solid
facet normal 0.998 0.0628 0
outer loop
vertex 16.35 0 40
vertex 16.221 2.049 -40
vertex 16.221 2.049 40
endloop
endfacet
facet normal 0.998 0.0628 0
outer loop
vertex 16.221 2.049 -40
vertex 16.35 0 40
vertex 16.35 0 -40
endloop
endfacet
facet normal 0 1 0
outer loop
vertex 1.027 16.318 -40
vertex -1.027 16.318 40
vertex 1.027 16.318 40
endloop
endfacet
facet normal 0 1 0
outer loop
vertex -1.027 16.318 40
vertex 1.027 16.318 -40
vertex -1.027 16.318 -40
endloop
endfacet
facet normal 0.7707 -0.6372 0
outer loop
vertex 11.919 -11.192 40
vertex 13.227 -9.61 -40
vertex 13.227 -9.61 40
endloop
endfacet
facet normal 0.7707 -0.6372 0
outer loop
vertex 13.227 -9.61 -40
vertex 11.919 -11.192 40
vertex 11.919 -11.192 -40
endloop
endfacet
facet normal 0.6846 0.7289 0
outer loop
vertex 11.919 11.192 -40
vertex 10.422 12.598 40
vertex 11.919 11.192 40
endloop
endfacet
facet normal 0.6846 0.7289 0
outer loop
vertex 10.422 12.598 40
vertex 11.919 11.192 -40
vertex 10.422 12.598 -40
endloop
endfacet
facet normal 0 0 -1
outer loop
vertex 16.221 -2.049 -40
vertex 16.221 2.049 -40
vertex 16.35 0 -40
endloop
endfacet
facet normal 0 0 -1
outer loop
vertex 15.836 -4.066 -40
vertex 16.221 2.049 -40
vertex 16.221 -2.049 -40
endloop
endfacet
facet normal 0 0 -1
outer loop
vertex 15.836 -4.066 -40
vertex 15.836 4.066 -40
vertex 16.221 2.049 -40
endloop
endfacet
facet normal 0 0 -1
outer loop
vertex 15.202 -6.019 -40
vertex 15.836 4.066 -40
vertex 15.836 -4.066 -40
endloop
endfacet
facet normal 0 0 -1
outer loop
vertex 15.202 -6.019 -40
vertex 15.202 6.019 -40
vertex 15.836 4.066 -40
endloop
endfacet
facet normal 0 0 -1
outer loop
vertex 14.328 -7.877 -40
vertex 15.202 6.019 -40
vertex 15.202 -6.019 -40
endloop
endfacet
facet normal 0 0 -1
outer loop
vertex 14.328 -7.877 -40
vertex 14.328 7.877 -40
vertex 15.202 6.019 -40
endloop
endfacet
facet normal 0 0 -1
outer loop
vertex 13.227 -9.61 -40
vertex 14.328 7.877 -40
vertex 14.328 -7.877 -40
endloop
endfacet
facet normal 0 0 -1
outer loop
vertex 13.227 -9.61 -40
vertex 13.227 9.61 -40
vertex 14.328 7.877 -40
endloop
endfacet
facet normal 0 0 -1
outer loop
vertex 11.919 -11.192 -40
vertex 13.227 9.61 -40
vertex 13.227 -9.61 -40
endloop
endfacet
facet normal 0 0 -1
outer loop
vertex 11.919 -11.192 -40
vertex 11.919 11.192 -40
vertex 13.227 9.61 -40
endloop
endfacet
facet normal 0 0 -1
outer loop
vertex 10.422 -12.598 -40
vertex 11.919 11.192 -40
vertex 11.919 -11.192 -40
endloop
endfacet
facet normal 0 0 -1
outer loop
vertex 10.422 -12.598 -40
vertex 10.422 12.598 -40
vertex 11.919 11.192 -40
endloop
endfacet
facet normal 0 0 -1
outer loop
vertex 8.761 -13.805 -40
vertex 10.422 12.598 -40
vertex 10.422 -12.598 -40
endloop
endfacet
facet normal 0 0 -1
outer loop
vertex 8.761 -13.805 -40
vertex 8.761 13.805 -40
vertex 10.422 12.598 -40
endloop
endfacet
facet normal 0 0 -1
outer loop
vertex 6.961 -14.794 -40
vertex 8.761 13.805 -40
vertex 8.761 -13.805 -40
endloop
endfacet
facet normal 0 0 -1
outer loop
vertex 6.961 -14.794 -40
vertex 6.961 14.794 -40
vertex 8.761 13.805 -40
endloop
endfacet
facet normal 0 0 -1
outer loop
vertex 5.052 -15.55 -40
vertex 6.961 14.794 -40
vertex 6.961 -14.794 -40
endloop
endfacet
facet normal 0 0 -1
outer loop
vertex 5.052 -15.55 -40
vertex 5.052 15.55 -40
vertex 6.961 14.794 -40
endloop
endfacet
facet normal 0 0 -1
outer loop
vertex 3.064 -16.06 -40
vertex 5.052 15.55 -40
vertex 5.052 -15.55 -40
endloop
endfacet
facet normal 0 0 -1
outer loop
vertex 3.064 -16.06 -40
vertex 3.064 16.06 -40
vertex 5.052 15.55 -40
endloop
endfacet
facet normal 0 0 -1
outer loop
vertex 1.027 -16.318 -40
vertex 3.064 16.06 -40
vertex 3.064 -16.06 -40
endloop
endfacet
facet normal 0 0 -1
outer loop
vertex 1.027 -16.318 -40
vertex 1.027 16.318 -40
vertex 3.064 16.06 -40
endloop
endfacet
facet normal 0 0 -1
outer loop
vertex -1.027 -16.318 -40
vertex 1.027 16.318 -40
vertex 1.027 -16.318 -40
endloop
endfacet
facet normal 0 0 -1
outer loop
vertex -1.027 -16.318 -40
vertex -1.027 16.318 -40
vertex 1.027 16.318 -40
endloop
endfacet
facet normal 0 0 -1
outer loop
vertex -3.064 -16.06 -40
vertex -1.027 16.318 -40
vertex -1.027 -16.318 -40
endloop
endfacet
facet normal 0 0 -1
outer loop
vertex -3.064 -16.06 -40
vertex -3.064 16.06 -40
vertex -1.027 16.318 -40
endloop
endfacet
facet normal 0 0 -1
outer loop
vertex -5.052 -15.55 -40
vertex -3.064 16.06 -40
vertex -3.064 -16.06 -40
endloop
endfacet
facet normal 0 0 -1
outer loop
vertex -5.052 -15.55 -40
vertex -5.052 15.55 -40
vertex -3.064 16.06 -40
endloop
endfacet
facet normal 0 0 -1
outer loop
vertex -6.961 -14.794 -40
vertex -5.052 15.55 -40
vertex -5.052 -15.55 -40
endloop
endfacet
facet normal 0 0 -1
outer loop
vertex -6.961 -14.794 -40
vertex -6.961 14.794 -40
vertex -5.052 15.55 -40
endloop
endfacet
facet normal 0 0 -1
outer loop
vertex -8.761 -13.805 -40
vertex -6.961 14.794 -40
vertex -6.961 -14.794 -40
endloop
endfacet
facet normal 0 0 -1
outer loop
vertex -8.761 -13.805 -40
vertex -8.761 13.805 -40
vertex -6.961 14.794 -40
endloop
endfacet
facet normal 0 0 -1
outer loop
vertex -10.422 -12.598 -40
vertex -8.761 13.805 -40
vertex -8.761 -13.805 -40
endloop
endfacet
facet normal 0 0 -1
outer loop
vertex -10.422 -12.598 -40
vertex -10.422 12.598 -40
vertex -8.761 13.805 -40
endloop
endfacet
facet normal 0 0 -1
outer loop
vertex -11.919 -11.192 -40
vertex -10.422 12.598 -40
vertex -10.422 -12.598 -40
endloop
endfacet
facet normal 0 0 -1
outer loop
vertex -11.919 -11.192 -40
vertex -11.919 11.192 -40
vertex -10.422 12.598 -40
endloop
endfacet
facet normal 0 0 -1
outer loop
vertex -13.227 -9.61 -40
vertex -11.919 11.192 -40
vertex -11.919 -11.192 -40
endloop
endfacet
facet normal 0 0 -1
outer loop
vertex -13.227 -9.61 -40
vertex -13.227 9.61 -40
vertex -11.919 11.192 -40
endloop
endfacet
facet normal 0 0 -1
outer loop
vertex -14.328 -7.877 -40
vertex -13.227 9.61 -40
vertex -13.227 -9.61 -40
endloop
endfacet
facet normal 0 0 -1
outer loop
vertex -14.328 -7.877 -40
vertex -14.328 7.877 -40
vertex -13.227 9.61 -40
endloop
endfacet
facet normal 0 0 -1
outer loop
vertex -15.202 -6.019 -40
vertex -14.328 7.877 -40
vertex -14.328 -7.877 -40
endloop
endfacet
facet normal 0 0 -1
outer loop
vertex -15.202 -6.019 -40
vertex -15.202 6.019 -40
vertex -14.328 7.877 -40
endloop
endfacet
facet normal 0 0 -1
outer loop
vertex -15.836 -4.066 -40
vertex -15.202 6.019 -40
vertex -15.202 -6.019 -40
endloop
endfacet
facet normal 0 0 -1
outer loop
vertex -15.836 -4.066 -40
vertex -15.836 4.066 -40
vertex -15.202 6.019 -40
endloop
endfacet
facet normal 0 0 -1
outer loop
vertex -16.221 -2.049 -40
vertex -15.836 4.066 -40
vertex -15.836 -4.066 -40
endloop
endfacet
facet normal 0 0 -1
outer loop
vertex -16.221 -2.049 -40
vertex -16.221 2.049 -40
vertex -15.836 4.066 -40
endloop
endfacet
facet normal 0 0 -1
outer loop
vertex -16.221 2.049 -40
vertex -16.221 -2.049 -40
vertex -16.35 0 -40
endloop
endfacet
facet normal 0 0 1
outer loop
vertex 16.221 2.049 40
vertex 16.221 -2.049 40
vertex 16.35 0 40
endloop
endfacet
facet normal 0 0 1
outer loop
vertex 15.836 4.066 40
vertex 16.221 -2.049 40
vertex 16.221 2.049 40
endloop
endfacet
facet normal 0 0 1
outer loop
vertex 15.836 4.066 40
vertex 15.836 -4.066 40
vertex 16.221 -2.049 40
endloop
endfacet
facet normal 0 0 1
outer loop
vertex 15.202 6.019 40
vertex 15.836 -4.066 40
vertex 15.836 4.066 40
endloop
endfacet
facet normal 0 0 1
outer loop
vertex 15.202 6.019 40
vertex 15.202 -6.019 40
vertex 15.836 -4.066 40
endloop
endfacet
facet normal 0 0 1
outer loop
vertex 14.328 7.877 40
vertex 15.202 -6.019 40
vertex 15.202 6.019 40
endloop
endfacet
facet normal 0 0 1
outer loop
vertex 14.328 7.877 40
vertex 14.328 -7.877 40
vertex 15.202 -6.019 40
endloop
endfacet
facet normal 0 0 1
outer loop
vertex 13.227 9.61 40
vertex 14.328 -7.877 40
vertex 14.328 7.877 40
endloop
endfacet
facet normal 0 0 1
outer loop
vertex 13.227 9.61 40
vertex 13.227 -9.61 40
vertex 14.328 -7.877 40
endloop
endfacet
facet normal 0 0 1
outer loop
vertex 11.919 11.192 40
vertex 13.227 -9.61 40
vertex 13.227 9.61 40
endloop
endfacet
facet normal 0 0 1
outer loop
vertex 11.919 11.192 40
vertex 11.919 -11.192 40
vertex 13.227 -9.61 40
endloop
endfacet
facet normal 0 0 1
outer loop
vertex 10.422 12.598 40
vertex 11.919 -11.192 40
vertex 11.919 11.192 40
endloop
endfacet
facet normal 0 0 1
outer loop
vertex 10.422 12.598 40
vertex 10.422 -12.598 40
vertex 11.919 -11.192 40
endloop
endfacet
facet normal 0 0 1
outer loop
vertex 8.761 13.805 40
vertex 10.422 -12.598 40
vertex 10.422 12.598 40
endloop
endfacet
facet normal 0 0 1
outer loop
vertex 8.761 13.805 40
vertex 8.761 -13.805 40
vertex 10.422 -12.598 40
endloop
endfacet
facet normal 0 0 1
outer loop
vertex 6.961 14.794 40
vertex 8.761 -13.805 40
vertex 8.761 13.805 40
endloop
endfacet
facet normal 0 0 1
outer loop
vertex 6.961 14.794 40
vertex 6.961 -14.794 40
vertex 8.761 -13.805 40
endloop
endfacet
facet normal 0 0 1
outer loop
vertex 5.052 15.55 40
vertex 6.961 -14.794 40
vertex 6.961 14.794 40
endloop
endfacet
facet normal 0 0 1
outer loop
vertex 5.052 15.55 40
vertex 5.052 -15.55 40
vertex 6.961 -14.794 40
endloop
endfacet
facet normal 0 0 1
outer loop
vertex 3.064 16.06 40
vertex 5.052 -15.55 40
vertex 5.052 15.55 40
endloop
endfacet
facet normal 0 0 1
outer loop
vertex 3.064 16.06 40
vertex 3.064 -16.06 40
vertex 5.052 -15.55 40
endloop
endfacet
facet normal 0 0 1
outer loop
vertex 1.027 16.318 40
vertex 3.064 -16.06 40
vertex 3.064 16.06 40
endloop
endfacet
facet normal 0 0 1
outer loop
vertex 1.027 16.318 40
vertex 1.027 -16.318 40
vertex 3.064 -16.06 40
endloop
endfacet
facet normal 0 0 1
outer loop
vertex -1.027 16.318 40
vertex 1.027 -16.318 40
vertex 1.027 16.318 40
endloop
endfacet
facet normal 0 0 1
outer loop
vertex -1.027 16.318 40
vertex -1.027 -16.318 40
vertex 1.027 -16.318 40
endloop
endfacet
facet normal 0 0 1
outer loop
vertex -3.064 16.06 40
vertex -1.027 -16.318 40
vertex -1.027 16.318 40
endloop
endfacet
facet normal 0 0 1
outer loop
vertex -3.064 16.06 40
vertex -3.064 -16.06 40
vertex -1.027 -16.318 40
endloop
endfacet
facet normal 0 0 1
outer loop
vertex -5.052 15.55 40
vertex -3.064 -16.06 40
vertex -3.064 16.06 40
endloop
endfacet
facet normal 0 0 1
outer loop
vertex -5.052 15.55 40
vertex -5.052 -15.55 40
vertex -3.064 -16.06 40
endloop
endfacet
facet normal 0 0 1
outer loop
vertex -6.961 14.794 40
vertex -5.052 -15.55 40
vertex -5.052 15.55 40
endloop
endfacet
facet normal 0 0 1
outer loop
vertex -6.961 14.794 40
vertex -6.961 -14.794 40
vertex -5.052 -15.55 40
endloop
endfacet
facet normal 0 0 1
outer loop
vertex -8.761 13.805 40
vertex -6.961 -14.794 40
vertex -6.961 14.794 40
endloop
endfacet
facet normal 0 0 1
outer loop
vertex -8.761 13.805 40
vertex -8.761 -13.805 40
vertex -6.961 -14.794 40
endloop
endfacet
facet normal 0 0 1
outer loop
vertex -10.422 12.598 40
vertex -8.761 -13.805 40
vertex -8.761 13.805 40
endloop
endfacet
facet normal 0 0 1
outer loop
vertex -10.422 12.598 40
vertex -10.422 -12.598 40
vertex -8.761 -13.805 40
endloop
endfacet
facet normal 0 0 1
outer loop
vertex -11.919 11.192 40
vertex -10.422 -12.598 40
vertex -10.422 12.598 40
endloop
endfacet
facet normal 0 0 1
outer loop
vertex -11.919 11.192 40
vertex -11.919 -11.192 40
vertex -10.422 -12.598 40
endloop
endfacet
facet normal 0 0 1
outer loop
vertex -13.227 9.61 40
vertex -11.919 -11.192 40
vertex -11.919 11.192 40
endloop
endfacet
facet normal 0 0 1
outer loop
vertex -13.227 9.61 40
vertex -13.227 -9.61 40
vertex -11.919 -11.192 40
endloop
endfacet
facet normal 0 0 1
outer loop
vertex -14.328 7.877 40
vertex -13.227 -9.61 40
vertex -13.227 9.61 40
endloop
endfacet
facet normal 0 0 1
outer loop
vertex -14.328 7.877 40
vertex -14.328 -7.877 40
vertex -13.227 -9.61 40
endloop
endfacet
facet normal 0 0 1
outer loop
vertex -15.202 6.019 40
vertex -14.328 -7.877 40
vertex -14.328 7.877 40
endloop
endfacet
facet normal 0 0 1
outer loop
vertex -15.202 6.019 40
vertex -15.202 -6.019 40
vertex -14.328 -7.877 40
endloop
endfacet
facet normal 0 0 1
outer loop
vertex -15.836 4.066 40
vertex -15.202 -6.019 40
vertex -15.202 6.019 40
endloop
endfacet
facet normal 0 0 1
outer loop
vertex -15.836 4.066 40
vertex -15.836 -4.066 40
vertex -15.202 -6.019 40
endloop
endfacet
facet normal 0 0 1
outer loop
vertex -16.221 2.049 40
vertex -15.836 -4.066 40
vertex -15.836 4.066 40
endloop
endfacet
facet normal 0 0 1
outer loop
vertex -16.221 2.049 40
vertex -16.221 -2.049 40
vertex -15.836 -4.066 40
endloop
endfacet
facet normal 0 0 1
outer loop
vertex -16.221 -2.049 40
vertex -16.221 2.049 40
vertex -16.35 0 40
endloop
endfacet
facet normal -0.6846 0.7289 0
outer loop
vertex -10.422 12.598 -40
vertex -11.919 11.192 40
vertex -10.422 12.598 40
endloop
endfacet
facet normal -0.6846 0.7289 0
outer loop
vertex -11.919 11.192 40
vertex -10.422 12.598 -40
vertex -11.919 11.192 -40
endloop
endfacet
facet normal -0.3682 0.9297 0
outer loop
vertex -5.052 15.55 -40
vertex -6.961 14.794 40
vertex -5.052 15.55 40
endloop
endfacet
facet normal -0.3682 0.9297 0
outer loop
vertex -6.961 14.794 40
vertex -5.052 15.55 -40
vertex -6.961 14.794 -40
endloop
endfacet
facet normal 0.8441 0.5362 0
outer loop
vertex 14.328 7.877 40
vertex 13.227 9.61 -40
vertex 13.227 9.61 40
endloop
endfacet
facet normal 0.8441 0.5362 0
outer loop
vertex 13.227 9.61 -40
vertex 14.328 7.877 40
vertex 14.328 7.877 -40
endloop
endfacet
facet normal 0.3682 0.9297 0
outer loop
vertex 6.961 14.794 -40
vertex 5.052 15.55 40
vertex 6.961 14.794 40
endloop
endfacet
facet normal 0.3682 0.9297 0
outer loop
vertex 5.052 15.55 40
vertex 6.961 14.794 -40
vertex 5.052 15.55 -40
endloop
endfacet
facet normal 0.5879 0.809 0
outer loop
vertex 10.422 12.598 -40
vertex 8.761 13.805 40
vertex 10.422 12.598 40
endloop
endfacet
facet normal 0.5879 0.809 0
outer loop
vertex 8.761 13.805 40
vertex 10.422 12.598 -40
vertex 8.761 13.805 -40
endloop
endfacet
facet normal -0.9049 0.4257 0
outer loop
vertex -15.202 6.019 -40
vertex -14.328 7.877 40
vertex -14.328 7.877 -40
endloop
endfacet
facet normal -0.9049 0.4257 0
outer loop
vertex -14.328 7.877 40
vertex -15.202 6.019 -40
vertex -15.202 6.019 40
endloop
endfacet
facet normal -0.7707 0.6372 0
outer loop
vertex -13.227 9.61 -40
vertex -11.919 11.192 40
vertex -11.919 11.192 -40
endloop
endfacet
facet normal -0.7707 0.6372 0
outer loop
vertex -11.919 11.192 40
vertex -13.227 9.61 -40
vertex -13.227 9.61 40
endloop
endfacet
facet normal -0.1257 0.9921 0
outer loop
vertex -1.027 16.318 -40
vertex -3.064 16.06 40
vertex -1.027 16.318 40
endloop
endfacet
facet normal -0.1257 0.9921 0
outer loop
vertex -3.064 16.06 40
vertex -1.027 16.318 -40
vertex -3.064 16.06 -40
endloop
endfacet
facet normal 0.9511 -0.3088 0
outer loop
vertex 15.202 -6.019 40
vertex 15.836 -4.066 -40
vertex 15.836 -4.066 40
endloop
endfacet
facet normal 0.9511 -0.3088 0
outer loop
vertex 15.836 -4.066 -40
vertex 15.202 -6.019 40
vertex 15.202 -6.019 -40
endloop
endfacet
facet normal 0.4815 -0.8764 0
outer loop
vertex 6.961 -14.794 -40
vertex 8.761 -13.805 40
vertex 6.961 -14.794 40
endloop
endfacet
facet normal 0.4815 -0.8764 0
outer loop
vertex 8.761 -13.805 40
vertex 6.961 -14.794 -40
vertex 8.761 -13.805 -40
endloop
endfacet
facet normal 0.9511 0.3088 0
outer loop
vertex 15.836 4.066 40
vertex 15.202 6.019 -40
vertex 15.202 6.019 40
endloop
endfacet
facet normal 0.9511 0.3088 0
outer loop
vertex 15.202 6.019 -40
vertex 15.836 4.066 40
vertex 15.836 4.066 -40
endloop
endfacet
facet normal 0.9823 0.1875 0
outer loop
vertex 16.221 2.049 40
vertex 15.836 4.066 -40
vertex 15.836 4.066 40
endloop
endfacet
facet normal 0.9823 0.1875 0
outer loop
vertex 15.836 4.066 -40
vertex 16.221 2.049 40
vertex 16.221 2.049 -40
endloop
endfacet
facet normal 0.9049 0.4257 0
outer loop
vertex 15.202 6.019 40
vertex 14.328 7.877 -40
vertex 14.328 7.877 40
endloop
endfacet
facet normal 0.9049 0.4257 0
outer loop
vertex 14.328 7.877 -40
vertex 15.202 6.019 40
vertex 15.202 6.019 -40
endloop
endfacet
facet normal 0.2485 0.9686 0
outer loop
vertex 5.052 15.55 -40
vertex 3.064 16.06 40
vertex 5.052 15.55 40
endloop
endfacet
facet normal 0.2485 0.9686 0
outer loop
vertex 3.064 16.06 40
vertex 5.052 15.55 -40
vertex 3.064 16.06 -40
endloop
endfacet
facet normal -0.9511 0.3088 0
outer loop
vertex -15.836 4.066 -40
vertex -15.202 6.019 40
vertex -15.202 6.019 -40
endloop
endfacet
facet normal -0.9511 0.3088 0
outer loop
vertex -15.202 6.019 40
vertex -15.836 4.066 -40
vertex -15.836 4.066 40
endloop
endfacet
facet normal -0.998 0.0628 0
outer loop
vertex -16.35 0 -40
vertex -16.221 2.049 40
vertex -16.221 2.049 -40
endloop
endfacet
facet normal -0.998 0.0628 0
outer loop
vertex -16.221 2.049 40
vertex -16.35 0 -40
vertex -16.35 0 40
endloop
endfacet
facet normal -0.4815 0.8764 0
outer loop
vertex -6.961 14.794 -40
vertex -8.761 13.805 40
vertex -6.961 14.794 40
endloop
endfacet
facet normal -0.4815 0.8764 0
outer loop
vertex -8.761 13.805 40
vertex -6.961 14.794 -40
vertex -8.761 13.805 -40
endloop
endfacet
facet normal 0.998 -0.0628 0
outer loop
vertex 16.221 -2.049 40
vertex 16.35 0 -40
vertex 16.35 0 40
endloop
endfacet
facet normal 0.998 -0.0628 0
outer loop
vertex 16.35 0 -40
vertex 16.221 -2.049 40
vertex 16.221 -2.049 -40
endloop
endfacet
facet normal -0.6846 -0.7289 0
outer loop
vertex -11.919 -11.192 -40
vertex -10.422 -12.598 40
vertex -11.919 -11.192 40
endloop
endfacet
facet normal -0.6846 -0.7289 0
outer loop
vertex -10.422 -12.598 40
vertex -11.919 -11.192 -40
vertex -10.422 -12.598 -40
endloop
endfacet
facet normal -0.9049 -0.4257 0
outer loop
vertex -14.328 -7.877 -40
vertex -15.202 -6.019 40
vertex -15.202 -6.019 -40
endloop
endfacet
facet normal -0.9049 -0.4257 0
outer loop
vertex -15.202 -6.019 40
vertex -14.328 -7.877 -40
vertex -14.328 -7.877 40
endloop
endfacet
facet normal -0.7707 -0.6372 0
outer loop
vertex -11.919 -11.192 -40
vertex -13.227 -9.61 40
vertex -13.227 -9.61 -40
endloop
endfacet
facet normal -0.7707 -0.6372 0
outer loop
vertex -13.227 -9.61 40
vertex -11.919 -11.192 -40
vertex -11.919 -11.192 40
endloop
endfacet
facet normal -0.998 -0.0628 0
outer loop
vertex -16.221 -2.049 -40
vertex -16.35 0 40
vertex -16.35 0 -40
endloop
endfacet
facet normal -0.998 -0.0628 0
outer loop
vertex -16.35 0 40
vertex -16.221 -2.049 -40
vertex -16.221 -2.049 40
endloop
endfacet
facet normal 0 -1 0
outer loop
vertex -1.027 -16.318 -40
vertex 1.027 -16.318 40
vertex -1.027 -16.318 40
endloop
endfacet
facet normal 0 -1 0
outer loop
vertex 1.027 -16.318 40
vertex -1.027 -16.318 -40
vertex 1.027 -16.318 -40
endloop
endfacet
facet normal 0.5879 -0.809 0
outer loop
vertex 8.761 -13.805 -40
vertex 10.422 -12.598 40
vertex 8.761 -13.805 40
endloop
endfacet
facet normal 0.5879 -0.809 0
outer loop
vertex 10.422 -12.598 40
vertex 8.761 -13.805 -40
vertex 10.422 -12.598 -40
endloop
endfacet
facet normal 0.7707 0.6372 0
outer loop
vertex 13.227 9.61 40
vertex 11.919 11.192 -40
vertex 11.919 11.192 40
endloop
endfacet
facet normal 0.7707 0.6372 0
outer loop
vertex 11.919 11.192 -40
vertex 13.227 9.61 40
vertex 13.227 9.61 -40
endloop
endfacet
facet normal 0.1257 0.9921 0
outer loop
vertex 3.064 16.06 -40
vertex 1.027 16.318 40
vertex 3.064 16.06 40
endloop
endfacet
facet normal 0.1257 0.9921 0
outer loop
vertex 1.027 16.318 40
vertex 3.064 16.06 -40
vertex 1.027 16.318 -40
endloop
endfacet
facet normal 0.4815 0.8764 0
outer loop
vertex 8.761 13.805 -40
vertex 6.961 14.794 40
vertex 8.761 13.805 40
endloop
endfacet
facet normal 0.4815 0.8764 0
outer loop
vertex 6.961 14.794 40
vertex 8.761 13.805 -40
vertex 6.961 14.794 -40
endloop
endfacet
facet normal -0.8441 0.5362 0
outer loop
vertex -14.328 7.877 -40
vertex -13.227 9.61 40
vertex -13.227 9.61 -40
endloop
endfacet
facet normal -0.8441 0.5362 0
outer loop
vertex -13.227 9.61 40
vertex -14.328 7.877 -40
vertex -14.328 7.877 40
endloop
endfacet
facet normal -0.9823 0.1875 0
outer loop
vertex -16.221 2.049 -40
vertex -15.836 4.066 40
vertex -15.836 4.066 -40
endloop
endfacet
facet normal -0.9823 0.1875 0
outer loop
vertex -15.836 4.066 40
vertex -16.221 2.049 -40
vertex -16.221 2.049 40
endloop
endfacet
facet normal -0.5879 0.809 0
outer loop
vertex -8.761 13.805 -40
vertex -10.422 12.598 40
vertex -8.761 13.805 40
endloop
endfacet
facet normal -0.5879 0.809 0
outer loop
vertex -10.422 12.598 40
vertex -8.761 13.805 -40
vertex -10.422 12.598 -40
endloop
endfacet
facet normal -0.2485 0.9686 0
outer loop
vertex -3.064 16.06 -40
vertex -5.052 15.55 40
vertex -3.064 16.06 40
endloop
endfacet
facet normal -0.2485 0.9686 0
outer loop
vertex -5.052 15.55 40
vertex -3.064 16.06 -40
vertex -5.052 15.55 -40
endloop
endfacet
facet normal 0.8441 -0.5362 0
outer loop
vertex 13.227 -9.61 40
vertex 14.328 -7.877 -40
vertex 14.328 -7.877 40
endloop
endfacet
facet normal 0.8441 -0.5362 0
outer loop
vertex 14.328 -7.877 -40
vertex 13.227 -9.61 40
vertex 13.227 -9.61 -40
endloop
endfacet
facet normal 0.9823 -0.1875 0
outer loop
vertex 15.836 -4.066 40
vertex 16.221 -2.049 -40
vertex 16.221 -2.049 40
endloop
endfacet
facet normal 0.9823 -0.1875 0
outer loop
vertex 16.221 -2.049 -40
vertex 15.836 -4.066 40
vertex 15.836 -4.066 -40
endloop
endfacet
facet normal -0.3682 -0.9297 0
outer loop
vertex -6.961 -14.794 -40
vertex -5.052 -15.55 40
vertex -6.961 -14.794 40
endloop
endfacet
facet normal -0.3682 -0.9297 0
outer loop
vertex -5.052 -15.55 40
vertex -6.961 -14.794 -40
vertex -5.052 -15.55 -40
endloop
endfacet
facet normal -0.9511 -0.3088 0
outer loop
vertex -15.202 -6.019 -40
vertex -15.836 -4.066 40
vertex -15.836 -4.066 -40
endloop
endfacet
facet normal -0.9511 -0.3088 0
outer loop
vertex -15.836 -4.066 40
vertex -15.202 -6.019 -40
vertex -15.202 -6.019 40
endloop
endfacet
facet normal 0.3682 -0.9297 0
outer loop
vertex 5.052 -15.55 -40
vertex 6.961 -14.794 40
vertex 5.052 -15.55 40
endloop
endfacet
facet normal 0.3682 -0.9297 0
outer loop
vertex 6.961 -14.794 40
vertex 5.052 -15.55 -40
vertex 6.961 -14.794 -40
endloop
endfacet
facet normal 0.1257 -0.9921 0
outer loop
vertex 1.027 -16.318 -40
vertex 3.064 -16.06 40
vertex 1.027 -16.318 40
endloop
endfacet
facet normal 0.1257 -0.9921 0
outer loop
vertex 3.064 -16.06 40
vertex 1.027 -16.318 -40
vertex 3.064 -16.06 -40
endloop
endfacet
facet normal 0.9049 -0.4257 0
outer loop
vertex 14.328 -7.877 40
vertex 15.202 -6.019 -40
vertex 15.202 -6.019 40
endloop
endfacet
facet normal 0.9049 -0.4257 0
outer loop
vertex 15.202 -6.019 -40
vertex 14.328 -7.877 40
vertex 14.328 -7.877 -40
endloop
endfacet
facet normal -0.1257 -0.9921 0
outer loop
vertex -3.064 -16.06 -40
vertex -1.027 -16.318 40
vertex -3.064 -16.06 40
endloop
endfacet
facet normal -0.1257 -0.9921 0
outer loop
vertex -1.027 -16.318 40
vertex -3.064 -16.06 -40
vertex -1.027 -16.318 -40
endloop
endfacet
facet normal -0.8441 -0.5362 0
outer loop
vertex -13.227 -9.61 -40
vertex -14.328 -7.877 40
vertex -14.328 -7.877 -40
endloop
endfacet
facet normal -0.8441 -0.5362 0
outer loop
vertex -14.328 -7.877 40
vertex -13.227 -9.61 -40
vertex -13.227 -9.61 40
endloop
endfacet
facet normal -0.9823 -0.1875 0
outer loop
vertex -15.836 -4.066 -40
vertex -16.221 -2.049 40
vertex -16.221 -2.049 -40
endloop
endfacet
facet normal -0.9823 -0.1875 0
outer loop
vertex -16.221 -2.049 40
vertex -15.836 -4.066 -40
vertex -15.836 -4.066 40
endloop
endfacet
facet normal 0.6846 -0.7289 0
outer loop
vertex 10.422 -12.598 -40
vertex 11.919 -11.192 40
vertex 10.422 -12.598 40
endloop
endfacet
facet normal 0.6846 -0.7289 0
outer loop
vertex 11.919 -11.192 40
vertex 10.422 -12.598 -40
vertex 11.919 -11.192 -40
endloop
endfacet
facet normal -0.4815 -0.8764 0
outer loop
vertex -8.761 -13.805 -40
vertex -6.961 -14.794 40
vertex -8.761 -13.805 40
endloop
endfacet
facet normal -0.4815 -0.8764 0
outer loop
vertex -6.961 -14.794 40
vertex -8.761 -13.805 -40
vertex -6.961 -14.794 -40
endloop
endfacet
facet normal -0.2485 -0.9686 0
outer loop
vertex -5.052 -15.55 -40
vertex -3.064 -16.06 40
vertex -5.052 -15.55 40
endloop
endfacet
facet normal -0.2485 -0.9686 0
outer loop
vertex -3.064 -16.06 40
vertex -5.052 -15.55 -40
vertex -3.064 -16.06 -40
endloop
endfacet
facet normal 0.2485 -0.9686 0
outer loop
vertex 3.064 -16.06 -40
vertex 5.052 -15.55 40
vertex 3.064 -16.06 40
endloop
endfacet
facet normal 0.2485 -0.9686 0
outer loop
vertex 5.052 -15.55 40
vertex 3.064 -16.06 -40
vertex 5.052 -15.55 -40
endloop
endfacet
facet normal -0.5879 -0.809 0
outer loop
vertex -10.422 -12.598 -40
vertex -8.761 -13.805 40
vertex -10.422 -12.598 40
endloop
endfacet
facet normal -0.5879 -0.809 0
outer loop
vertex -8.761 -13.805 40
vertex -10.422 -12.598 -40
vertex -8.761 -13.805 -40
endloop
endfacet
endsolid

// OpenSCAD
$fn = 50;


difference() {
	union() {
		translate(v = [0, 0, -40.0000000000]) {
			cylinder(h = 80, r = 16.3500000000);
		}
	}
	union() {
		translate(v = [0, 0, -100.0000000000]) {
			cylinder(h = 200, r = 0);
		}
	}
}
